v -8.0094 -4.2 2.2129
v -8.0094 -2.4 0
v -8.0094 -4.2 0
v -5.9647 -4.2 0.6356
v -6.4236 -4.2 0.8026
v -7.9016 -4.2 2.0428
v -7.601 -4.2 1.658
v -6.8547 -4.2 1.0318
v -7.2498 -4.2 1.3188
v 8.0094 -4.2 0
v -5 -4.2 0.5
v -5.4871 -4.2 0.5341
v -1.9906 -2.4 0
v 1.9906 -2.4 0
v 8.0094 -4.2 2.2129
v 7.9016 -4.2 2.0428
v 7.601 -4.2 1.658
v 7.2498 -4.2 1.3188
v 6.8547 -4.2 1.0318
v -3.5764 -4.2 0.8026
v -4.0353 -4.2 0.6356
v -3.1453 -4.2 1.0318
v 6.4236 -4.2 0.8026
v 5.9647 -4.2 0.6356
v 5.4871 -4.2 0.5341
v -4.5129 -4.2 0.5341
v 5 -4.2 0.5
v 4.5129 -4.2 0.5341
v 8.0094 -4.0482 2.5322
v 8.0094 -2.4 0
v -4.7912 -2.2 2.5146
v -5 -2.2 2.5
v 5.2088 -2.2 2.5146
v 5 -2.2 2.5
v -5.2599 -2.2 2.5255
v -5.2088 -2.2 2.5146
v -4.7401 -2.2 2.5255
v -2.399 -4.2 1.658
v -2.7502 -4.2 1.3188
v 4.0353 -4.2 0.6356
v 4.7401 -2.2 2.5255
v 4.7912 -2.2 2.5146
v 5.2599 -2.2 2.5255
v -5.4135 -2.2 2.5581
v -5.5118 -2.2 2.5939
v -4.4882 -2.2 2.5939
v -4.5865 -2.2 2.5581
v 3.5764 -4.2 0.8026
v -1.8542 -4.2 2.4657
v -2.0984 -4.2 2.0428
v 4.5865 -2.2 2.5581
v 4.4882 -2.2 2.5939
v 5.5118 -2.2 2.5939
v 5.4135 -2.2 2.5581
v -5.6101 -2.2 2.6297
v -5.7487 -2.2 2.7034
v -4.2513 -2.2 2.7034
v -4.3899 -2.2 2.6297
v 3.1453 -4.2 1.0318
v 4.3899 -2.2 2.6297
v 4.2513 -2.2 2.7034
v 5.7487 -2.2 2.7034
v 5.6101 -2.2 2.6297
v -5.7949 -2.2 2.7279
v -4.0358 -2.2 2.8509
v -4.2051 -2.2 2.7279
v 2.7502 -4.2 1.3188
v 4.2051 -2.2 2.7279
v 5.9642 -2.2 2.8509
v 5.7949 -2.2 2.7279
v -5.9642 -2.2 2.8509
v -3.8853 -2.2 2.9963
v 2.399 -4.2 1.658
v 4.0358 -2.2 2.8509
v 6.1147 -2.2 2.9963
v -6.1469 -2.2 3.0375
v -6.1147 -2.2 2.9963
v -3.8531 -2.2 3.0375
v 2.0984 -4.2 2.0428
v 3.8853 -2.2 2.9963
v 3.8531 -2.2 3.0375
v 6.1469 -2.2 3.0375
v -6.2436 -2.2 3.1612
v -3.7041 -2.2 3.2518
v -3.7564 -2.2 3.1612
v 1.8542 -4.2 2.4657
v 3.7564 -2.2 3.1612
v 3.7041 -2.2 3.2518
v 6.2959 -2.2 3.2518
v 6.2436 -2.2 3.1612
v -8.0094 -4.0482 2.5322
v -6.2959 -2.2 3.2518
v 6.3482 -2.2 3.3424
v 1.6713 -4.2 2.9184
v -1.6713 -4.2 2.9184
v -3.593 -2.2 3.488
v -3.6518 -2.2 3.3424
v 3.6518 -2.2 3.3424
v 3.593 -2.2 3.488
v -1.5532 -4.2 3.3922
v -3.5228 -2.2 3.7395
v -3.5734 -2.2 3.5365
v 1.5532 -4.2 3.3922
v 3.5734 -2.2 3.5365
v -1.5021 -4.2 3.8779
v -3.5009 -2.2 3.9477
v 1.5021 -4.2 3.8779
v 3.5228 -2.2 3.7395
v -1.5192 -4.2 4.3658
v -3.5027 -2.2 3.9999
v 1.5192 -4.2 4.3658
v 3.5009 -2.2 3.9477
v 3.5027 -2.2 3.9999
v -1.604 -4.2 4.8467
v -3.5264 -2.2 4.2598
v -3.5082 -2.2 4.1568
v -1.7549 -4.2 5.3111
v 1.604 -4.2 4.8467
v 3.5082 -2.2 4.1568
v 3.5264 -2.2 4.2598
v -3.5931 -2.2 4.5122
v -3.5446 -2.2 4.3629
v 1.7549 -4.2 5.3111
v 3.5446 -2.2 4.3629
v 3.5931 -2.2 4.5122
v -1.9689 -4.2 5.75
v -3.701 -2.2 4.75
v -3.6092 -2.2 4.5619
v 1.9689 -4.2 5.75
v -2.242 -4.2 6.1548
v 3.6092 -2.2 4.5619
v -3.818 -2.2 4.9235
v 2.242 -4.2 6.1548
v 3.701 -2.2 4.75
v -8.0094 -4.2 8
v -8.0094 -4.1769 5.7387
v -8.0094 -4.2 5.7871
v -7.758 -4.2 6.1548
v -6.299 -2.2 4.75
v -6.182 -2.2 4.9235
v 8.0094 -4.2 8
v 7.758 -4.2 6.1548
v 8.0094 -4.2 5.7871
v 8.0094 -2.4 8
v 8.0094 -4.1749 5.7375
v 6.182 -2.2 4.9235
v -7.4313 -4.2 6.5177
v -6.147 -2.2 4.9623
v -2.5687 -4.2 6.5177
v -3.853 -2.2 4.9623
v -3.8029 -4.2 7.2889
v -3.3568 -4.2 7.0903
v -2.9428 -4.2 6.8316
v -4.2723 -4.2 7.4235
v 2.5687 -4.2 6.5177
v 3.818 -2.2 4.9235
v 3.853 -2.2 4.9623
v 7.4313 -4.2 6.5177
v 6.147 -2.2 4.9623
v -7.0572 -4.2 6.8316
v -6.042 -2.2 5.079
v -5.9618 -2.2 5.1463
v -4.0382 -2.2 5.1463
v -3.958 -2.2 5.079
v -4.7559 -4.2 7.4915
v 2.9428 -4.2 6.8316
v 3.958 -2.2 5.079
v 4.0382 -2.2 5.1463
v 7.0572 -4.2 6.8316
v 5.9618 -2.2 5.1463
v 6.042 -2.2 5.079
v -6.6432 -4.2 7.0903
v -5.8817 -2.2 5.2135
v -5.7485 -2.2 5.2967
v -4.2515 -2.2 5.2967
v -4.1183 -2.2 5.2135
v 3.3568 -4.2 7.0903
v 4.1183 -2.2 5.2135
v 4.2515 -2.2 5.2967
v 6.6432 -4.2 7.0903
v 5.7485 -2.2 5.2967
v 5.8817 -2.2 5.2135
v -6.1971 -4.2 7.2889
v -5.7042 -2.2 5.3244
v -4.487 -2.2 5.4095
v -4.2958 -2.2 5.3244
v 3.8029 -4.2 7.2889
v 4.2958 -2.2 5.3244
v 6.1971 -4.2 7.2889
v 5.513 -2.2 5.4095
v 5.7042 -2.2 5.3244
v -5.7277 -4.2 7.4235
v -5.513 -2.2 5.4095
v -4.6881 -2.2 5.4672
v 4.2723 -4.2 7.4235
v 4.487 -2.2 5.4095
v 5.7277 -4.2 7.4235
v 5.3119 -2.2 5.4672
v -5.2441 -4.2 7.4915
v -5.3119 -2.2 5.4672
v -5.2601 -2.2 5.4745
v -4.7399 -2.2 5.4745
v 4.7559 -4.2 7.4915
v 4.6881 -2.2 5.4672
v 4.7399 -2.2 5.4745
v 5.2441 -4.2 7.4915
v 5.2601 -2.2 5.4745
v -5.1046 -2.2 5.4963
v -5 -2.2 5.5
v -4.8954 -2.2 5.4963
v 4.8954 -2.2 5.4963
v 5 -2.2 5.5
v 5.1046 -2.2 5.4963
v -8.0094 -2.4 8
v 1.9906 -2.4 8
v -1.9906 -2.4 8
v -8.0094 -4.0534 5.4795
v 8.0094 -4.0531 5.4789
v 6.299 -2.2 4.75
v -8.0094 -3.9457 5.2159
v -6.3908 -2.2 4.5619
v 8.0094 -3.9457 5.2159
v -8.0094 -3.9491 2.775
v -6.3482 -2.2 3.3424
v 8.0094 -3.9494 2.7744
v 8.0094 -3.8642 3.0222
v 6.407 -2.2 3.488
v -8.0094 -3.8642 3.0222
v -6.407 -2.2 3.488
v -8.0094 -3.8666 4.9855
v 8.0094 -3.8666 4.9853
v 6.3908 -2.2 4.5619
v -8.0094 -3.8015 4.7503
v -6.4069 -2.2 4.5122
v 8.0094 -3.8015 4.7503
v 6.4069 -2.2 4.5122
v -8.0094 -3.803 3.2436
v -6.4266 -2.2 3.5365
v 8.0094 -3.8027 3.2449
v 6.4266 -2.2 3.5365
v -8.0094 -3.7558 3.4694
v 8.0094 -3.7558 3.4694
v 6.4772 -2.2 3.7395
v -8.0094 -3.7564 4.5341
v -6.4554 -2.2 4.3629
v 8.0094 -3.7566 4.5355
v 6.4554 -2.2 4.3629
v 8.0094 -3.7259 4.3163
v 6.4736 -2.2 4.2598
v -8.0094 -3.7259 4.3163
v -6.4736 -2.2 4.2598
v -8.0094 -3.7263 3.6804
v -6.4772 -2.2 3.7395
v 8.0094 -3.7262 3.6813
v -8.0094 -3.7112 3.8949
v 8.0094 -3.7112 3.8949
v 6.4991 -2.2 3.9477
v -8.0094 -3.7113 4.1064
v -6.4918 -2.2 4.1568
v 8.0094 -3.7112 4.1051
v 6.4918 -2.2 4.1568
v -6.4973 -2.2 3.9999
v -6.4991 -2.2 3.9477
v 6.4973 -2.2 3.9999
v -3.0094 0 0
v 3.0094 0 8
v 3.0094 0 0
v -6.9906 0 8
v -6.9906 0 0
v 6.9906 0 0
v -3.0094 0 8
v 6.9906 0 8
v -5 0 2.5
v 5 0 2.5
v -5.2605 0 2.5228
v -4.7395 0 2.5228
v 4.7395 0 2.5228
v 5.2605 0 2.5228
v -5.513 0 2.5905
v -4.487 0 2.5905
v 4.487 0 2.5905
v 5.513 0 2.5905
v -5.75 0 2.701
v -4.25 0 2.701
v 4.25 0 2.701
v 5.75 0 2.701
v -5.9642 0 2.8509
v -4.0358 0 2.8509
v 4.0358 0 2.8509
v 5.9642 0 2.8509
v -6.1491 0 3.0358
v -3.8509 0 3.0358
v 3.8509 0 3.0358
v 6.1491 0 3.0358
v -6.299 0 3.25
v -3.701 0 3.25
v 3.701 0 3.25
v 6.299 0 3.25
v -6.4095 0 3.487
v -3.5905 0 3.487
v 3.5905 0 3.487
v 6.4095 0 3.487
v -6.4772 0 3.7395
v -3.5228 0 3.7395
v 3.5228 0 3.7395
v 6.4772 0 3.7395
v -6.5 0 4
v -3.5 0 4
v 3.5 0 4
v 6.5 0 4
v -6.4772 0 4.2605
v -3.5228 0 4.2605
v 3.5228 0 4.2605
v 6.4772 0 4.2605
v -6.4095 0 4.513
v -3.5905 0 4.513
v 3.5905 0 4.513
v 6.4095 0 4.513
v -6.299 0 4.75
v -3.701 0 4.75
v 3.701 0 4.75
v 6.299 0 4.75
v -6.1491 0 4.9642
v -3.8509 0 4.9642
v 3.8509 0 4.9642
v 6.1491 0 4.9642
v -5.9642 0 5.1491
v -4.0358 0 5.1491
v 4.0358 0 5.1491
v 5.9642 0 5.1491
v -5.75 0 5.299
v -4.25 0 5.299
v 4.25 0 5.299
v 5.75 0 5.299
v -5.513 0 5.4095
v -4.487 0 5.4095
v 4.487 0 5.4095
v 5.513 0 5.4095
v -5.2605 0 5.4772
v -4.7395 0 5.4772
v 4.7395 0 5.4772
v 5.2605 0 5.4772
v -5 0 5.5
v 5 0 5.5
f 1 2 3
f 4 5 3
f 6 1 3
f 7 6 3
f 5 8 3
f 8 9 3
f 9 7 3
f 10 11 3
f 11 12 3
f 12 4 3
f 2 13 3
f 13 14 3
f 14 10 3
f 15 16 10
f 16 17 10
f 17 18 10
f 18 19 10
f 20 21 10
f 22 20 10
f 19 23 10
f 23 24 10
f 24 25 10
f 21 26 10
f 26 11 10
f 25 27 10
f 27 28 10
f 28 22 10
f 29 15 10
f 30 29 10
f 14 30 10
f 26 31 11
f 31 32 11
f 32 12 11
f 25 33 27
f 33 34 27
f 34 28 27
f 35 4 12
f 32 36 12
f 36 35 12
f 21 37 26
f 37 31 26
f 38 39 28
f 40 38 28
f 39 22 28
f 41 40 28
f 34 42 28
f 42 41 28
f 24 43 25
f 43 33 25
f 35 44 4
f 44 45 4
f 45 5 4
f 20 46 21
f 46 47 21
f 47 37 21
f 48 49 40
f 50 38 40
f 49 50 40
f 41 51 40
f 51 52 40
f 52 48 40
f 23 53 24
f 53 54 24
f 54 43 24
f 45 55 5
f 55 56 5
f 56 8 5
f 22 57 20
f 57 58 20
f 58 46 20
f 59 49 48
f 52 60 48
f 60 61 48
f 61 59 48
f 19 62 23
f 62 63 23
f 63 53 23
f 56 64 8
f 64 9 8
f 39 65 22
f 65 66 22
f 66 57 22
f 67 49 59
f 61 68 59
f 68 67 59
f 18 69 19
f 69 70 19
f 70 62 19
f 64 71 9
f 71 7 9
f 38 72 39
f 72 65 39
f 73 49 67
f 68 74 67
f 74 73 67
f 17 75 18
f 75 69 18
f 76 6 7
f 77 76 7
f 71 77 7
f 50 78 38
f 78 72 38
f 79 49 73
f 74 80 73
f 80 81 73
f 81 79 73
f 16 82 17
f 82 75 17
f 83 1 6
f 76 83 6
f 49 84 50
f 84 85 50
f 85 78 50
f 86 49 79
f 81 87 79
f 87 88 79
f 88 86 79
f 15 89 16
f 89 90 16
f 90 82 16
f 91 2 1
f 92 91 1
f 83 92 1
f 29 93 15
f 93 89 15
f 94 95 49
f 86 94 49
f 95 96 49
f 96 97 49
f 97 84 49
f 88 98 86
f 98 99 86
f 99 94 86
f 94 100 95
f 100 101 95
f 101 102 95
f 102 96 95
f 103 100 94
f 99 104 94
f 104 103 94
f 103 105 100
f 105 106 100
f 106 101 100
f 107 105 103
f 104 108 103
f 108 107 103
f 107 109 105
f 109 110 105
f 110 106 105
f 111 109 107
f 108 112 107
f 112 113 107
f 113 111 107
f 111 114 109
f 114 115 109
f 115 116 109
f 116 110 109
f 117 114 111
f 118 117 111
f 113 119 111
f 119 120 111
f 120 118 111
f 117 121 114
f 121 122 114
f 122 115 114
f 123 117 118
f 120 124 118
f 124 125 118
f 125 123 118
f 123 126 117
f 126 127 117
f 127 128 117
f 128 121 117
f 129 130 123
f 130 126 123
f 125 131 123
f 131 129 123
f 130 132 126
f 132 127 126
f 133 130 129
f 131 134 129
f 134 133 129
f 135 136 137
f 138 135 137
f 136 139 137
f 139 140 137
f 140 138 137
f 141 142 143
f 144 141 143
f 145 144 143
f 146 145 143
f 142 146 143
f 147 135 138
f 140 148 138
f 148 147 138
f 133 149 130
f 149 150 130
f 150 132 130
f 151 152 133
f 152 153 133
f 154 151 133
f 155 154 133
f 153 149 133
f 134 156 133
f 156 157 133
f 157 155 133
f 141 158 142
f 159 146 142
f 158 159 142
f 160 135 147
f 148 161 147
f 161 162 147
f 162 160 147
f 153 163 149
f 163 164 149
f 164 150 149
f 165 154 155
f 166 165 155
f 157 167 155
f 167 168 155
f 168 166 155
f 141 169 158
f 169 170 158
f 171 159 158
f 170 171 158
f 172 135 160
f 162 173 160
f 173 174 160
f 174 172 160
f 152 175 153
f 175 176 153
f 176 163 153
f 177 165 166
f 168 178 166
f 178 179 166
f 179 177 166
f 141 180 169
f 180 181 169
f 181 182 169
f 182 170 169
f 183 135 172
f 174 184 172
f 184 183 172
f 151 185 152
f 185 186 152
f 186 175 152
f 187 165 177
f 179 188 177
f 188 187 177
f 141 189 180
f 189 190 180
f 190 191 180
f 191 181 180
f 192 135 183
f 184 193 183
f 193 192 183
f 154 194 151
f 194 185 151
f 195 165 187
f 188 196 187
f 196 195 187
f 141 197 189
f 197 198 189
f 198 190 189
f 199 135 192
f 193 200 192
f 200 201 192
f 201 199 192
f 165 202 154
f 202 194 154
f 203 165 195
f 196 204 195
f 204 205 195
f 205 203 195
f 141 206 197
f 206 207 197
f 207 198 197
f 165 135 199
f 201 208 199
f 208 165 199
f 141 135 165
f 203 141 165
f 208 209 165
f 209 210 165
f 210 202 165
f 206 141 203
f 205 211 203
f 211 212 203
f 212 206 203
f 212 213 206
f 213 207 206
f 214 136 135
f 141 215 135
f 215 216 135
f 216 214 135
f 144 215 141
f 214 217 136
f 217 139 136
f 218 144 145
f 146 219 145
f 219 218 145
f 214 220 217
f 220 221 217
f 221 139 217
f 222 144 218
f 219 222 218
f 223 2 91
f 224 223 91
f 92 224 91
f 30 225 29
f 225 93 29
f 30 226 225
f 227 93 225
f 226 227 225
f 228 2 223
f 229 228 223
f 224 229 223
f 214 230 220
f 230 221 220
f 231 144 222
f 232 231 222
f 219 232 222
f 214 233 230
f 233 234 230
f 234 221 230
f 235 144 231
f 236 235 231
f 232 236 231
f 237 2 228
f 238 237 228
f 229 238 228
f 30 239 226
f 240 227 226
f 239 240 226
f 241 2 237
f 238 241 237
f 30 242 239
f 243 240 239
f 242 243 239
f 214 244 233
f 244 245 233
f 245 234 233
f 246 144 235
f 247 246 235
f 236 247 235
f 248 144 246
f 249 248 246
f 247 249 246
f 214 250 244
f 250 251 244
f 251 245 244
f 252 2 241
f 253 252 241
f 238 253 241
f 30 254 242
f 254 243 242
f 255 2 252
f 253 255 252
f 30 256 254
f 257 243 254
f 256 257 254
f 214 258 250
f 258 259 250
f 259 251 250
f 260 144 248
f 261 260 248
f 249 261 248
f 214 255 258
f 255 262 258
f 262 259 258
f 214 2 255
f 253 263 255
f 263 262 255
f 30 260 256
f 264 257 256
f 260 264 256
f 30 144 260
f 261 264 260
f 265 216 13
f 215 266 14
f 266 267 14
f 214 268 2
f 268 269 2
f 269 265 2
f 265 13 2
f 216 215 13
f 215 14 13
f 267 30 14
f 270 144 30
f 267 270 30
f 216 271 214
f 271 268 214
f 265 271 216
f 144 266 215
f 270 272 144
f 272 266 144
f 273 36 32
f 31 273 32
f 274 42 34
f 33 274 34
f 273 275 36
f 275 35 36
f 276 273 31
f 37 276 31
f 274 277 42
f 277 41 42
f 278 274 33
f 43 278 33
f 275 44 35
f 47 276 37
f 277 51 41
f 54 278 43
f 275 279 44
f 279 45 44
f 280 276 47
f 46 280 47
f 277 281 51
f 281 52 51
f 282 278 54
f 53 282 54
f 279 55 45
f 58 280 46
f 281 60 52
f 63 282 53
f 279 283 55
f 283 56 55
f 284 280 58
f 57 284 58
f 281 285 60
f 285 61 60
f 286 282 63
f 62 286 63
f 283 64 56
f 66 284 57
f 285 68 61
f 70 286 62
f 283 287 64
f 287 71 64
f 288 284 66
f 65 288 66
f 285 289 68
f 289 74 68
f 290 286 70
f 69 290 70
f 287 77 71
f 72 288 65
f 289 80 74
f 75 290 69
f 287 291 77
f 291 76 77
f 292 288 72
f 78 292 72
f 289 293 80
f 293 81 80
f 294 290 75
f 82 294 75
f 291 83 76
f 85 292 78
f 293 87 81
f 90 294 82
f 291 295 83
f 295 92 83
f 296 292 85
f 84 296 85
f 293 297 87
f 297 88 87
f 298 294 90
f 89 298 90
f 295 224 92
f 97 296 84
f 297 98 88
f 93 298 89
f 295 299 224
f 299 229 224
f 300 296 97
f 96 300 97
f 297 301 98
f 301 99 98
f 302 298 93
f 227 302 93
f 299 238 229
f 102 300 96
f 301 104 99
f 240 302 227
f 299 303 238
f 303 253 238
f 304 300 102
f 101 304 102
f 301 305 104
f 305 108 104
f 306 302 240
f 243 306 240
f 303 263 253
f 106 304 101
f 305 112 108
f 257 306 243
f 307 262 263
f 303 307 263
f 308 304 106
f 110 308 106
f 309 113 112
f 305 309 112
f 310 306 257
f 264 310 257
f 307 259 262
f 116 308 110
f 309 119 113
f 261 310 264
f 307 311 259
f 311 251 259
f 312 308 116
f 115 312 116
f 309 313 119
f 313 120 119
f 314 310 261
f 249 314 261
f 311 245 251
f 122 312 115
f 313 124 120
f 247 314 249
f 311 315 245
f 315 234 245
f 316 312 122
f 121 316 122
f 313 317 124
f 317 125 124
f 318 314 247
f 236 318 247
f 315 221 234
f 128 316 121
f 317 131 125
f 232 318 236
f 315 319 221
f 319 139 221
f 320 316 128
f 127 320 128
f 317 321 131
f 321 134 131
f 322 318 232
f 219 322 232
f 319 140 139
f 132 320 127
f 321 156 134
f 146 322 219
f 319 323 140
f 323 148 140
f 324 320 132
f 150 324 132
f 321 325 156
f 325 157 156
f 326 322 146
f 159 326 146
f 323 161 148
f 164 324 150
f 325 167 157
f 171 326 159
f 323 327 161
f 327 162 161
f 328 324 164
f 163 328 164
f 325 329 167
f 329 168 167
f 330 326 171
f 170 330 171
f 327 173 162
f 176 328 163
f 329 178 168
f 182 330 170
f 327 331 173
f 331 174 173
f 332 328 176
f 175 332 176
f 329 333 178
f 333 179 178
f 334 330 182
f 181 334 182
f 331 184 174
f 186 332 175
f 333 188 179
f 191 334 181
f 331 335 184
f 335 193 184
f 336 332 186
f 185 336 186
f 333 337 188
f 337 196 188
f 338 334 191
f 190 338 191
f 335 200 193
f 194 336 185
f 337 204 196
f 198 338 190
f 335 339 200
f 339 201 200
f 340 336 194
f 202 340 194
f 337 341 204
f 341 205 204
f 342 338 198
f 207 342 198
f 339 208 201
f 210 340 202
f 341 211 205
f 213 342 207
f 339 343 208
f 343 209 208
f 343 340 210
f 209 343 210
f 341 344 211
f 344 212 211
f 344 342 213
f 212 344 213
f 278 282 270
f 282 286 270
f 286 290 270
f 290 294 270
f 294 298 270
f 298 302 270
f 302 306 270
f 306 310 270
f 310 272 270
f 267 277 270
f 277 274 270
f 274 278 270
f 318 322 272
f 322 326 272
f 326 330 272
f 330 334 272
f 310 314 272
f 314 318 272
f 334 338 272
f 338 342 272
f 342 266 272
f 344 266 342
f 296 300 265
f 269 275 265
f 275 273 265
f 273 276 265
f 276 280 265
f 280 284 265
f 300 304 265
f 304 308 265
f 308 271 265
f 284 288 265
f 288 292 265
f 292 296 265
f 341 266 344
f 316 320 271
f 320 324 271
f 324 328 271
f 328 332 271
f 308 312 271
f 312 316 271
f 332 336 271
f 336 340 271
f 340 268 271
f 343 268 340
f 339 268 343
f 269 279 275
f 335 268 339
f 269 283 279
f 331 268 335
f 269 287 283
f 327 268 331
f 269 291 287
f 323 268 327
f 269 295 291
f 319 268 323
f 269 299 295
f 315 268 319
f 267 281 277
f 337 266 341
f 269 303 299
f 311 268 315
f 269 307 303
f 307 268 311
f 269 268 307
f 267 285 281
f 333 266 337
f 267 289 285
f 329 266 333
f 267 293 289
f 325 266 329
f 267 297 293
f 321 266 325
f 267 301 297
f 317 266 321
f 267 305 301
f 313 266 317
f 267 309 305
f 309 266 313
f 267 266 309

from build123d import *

# Parameters (mm, degrees)
EXTRUDE_1_DEPTH     = 8
SKETCH_2_R          = 1.5
CUT_EXTRUDE_1_DEPTH = 13.074353161
CHAMFER_1_SIZE      = 2


with BuildPart() as part:
    # ｽｹｯﾁ1 → ﾎﾞｽ - 押し出し1 (new body)
    with BuildSketch(Plane.XY):
        Polygon((-6.990630221, 0), (-3.009369779, 0), (-1.990630221, -2.4), (1.990630221, -2.4), (3.009369779, 0), (6.990630221, 0), (8.009369779, -2.4), (8.009369779, -4.2), (-8.009369779, -4.2), (-8.009369779, -2.4), align=None)
    extrude(amount=EXTRUDE_1_DEPTH)

    # ｽｹｯﾁ2 → ｶｯﾄ - 押し出し1 (cut, through all)
    with BuildSketch(Plane(origin=(0, 0, 0), x_dir=(1, 0, 0), z_dir=(0, 1, 0))):
        with Locations(Location((-5, -4, 0), (0, 0, 180))):
            Circle(SKETCH_2_R)
        with Locations(Location((5, -4, 0), (0, 0, 180))):
            Circle(SKETCH_2_R)
    extrude(amount=-CUT_EXTRUDE_1_DEPTH, mode=Mode.SUBTRACT)

    # 面取り1
    # the kernel refuses this chamfer: 2 mm, written as the material it takes off along each edge
    with BuildSketch(Plane(origin=(-5, -4.2, 4), x_dir=(-1, 0, 0), z_dir=(0, 0, -1))) as chamfer_1_piece_1:
        Polygon((1.5, CHAMFER_1_SIZE), (1.5 + CHAMFER_1_SIZE, 0), (1.5, 0), align=None)
    revolve(axis=Axis((-5, -4.2, 4), (0, 1, 0)), mode=Mode.SUBTRACT)
    with BuildSketch(Plane(origin=(5, -4.2, 4), x_dir=(-1, 0, 0), z_dir=(0, 0, -1))) as chamfer_1_piece_2:
        Polygon((1.5 + CHAMFER_1_SIZE, 0), (1.5, CHAMFER_1_SIZE), (1.5, 0), align=None)
    revolve(axis=Axis((5, -4.2, 4), (0, 1, 0)), mode=Mode.SUBTRACT)


solid = part.part
